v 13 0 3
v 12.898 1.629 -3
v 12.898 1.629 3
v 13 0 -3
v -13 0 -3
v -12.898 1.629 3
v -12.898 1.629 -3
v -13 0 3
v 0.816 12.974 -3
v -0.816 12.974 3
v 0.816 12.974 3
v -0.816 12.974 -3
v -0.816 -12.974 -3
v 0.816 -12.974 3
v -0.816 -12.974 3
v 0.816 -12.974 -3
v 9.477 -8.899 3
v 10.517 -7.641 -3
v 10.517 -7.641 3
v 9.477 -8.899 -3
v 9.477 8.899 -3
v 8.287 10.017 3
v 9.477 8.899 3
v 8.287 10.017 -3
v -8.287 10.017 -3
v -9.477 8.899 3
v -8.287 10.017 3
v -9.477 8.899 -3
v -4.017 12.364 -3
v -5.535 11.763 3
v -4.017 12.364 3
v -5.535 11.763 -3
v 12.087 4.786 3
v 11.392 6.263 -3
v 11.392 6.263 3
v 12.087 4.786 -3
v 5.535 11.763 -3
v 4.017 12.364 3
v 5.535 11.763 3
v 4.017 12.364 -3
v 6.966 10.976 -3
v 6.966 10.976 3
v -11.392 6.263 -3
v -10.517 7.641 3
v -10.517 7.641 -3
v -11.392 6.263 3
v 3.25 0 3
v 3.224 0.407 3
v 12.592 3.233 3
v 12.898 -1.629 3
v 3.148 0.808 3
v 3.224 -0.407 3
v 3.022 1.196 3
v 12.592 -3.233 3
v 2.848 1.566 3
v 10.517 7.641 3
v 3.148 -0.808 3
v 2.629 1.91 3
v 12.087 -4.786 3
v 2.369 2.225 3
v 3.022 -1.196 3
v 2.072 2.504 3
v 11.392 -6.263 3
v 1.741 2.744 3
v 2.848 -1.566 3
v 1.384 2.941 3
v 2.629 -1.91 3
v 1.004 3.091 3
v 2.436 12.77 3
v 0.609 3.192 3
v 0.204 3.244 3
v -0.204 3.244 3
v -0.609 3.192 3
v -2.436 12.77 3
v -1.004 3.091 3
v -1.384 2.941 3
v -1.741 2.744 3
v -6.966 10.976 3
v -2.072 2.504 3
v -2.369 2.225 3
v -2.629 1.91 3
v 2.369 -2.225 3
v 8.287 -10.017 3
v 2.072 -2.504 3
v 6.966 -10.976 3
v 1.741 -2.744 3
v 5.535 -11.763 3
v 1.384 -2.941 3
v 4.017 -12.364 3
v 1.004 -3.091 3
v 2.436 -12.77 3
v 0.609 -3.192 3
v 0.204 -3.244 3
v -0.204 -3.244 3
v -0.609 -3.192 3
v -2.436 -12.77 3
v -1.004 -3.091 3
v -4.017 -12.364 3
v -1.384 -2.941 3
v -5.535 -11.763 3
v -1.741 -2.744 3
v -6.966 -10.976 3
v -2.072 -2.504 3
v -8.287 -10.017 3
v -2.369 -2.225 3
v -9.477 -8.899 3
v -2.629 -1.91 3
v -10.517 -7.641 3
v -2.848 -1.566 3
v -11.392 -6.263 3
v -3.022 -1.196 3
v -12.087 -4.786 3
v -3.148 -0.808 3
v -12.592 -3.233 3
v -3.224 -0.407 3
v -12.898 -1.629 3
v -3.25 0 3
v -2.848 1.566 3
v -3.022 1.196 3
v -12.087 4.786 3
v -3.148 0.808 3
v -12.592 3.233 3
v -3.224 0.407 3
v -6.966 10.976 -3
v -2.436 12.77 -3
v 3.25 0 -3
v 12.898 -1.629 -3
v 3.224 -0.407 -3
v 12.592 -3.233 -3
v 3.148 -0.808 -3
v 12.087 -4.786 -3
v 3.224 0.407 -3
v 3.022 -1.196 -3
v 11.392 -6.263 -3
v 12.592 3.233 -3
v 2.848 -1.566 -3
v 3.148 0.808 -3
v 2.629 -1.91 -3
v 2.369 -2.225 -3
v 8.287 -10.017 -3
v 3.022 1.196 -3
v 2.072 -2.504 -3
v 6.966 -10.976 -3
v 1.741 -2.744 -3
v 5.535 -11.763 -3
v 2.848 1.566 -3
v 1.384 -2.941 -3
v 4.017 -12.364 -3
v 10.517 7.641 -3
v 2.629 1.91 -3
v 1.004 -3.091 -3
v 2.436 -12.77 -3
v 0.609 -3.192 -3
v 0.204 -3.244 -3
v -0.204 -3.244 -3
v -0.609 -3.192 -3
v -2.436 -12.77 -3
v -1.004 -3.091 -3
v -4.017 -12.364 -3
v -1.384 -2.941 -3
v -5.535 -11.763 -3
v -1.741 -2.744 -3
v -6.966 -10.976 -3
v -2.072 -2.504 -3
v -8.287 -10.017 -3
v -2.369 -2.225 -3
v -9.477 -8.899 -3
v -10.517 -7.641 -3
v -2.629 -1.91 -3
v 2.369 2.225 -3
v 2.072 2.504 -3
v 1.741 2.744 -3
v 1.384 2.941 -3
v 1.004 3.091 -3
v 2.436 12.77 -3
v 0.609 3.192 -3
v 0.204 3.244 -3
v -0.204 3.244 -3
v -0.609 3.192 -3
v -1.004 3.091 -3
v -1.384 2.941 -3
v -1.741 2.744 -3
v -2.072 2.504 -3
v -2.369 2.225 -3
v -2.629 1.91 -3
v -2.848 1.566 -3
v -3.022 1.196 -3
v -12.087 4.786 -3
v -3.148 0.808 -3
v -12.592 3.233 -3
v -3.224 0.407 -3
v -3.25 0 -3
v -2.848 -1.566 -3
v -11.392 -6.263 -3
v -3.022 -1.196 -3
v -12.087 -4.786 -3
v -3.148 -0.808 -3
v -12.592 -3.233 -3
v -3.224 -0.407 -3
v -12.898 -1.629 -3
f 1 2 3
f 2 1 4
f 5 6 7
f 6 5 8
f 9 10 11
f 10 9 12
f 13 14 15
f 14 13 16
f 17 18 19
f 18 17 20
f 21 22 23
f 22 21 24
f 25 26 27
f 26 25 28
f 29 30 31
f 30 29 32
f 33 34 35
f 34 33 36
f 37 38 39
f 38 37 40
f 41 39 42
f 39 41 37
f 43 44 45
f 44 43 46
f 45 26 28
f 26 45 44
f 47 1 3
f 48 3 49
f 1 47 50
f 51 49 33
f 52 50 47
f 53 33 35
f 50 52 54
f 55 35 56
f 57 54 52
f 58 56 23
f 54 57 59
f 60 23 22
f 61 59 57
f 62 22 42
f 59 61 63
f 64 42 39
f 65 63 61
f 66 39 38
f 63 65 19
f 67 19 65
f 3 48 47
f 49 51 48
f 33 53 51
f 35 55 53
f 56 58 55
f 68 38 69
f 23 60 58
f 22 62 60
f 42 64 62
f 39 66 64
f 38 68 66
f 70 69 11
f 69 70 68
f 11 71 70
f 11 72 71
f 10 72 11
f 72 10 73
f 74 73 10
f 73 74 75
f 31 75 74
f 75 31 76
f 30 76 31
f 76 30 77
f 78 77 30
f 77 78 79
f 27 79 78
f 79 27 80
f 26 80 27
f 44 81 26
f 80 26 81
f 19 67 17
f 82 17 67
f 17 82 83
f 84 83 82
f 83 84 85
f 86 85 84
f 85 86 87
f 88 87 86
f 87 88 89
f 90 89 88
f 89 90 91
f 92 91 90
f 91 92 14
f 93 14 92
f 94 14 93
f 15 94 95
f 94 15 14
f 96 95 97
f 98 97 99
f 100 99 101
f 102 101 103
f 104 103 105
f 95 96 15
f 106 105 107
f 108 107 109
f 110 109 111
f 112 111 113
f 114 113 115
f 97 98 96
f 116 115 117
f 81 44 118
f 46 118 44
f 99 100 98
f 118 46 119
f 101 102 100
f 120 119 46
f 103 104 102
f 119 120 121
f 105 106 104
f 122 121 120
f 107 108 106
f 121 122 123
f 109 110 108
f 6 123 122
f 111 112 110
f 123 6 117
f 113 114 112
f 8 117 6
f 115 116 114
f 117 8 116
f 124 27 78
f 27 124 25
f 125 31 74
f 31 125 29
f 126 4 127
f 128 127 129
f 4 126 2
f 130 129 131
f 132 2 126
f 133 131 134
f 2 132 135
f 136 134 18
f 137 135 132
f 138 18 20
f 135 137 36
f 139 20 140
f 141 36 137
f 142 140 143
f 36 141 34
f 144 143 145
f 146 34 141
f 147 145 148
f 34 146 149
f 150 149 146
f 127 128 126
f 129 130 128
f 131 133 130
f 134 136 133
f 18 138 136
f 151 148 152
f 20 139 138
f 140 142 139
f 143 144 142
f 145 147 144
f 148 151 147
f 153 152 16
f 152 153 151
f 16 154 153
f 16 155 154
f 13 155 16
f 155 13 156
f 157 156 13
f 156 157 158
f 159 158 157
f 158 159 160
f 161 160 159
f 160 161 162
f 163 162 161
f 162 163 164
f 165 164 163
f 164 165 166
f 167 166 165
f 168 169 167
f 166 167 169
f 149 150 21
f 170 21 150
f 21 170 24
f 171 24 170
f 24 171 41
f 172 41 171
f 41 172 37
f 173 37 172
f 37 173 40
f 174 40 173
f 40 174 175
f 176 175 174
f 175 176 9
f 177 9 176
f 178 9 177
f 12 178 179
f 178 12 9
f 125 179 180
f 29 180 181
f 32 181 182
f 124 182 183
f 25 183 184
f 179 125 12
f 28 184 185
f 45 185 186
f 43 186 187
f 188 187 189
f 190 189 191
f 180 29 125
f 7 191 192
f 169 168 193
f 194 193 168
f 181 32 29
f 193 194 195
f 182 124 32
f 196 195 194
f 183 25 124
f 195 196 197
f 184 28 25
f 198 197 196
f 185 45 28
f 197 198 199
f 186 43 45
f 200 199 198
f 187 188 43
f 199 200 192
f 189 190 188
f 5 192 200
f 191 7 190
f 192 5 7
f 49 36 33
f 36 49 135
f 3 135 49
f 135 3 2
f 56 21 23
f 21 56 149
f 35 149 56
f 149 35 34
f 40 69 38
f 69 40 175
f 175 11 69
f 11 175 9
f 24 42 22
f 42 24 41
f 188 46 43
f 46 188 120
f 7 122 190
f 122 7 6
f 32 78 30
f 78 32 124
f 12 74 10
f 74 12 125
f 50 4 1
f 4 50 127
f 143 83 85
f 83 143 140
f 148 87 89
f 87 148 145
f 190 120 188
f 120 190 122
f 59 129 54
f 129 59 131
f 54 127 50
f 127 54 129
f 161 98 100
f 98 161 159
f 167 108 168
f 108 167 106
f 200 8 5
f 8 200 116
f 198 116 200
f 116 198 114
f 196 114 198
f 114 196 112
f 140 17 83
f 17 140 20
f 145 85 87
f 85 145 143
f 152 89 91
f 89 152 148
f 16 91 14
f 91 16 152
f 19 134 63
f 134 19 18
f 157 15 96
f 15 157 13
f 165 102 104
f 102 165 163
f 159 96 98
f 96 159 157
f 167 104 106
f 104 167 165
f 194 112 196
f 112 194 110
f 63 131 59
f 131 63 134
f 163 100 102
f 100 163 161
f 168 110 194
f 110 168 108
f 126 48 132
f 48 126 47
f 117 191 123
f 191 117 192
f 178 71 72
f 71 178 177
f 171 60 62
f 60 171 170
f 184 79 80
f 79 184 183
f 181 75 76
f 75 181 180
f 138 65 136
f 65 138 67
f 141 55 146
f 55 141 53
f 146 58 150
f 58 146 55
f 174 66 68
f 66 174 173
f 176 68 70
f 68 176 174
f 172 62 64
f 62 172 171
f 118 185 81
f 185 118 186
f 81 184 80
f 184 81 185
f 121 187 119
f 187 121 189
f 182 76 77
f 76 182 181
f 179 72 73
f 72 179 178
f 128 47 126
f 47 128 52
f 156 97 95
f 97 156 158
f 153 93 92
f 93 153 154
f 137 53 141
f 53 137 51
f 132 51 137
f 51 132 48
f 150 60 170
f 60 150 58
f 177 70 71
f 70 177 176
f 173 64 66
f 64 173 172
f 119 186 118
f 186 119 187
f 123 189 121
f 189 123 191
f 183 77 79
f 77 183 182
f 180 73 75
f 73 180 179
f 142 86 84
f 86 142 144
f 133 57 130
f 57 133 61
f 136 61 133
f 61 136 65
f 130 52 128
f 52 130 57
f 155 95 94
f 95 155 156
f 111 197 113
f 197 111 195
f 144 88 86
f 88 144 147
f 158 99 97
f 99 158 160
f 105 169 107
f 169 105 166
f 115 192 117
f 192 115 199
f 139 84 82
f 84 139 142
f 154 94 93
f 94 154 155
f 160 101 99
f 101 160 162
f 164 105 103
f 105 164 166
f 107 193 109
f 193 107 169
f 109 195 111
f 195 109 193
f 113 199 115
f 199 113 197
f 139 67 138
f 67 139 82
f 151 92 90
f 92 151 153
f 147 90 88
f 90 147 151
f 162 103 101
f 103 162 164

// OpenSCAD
$fn = 50;


difference() {
	union() {
		translate(v = [0, 0, -3.0000000000]) {
			cylinder(h = 6, r = 13.0000000000);
		}
	}
	union() {
		translate(v = [0, 0, -100.0000000000]) {
			cylinder(h = 200, r = 3.2500000000);
		}
	}
}
